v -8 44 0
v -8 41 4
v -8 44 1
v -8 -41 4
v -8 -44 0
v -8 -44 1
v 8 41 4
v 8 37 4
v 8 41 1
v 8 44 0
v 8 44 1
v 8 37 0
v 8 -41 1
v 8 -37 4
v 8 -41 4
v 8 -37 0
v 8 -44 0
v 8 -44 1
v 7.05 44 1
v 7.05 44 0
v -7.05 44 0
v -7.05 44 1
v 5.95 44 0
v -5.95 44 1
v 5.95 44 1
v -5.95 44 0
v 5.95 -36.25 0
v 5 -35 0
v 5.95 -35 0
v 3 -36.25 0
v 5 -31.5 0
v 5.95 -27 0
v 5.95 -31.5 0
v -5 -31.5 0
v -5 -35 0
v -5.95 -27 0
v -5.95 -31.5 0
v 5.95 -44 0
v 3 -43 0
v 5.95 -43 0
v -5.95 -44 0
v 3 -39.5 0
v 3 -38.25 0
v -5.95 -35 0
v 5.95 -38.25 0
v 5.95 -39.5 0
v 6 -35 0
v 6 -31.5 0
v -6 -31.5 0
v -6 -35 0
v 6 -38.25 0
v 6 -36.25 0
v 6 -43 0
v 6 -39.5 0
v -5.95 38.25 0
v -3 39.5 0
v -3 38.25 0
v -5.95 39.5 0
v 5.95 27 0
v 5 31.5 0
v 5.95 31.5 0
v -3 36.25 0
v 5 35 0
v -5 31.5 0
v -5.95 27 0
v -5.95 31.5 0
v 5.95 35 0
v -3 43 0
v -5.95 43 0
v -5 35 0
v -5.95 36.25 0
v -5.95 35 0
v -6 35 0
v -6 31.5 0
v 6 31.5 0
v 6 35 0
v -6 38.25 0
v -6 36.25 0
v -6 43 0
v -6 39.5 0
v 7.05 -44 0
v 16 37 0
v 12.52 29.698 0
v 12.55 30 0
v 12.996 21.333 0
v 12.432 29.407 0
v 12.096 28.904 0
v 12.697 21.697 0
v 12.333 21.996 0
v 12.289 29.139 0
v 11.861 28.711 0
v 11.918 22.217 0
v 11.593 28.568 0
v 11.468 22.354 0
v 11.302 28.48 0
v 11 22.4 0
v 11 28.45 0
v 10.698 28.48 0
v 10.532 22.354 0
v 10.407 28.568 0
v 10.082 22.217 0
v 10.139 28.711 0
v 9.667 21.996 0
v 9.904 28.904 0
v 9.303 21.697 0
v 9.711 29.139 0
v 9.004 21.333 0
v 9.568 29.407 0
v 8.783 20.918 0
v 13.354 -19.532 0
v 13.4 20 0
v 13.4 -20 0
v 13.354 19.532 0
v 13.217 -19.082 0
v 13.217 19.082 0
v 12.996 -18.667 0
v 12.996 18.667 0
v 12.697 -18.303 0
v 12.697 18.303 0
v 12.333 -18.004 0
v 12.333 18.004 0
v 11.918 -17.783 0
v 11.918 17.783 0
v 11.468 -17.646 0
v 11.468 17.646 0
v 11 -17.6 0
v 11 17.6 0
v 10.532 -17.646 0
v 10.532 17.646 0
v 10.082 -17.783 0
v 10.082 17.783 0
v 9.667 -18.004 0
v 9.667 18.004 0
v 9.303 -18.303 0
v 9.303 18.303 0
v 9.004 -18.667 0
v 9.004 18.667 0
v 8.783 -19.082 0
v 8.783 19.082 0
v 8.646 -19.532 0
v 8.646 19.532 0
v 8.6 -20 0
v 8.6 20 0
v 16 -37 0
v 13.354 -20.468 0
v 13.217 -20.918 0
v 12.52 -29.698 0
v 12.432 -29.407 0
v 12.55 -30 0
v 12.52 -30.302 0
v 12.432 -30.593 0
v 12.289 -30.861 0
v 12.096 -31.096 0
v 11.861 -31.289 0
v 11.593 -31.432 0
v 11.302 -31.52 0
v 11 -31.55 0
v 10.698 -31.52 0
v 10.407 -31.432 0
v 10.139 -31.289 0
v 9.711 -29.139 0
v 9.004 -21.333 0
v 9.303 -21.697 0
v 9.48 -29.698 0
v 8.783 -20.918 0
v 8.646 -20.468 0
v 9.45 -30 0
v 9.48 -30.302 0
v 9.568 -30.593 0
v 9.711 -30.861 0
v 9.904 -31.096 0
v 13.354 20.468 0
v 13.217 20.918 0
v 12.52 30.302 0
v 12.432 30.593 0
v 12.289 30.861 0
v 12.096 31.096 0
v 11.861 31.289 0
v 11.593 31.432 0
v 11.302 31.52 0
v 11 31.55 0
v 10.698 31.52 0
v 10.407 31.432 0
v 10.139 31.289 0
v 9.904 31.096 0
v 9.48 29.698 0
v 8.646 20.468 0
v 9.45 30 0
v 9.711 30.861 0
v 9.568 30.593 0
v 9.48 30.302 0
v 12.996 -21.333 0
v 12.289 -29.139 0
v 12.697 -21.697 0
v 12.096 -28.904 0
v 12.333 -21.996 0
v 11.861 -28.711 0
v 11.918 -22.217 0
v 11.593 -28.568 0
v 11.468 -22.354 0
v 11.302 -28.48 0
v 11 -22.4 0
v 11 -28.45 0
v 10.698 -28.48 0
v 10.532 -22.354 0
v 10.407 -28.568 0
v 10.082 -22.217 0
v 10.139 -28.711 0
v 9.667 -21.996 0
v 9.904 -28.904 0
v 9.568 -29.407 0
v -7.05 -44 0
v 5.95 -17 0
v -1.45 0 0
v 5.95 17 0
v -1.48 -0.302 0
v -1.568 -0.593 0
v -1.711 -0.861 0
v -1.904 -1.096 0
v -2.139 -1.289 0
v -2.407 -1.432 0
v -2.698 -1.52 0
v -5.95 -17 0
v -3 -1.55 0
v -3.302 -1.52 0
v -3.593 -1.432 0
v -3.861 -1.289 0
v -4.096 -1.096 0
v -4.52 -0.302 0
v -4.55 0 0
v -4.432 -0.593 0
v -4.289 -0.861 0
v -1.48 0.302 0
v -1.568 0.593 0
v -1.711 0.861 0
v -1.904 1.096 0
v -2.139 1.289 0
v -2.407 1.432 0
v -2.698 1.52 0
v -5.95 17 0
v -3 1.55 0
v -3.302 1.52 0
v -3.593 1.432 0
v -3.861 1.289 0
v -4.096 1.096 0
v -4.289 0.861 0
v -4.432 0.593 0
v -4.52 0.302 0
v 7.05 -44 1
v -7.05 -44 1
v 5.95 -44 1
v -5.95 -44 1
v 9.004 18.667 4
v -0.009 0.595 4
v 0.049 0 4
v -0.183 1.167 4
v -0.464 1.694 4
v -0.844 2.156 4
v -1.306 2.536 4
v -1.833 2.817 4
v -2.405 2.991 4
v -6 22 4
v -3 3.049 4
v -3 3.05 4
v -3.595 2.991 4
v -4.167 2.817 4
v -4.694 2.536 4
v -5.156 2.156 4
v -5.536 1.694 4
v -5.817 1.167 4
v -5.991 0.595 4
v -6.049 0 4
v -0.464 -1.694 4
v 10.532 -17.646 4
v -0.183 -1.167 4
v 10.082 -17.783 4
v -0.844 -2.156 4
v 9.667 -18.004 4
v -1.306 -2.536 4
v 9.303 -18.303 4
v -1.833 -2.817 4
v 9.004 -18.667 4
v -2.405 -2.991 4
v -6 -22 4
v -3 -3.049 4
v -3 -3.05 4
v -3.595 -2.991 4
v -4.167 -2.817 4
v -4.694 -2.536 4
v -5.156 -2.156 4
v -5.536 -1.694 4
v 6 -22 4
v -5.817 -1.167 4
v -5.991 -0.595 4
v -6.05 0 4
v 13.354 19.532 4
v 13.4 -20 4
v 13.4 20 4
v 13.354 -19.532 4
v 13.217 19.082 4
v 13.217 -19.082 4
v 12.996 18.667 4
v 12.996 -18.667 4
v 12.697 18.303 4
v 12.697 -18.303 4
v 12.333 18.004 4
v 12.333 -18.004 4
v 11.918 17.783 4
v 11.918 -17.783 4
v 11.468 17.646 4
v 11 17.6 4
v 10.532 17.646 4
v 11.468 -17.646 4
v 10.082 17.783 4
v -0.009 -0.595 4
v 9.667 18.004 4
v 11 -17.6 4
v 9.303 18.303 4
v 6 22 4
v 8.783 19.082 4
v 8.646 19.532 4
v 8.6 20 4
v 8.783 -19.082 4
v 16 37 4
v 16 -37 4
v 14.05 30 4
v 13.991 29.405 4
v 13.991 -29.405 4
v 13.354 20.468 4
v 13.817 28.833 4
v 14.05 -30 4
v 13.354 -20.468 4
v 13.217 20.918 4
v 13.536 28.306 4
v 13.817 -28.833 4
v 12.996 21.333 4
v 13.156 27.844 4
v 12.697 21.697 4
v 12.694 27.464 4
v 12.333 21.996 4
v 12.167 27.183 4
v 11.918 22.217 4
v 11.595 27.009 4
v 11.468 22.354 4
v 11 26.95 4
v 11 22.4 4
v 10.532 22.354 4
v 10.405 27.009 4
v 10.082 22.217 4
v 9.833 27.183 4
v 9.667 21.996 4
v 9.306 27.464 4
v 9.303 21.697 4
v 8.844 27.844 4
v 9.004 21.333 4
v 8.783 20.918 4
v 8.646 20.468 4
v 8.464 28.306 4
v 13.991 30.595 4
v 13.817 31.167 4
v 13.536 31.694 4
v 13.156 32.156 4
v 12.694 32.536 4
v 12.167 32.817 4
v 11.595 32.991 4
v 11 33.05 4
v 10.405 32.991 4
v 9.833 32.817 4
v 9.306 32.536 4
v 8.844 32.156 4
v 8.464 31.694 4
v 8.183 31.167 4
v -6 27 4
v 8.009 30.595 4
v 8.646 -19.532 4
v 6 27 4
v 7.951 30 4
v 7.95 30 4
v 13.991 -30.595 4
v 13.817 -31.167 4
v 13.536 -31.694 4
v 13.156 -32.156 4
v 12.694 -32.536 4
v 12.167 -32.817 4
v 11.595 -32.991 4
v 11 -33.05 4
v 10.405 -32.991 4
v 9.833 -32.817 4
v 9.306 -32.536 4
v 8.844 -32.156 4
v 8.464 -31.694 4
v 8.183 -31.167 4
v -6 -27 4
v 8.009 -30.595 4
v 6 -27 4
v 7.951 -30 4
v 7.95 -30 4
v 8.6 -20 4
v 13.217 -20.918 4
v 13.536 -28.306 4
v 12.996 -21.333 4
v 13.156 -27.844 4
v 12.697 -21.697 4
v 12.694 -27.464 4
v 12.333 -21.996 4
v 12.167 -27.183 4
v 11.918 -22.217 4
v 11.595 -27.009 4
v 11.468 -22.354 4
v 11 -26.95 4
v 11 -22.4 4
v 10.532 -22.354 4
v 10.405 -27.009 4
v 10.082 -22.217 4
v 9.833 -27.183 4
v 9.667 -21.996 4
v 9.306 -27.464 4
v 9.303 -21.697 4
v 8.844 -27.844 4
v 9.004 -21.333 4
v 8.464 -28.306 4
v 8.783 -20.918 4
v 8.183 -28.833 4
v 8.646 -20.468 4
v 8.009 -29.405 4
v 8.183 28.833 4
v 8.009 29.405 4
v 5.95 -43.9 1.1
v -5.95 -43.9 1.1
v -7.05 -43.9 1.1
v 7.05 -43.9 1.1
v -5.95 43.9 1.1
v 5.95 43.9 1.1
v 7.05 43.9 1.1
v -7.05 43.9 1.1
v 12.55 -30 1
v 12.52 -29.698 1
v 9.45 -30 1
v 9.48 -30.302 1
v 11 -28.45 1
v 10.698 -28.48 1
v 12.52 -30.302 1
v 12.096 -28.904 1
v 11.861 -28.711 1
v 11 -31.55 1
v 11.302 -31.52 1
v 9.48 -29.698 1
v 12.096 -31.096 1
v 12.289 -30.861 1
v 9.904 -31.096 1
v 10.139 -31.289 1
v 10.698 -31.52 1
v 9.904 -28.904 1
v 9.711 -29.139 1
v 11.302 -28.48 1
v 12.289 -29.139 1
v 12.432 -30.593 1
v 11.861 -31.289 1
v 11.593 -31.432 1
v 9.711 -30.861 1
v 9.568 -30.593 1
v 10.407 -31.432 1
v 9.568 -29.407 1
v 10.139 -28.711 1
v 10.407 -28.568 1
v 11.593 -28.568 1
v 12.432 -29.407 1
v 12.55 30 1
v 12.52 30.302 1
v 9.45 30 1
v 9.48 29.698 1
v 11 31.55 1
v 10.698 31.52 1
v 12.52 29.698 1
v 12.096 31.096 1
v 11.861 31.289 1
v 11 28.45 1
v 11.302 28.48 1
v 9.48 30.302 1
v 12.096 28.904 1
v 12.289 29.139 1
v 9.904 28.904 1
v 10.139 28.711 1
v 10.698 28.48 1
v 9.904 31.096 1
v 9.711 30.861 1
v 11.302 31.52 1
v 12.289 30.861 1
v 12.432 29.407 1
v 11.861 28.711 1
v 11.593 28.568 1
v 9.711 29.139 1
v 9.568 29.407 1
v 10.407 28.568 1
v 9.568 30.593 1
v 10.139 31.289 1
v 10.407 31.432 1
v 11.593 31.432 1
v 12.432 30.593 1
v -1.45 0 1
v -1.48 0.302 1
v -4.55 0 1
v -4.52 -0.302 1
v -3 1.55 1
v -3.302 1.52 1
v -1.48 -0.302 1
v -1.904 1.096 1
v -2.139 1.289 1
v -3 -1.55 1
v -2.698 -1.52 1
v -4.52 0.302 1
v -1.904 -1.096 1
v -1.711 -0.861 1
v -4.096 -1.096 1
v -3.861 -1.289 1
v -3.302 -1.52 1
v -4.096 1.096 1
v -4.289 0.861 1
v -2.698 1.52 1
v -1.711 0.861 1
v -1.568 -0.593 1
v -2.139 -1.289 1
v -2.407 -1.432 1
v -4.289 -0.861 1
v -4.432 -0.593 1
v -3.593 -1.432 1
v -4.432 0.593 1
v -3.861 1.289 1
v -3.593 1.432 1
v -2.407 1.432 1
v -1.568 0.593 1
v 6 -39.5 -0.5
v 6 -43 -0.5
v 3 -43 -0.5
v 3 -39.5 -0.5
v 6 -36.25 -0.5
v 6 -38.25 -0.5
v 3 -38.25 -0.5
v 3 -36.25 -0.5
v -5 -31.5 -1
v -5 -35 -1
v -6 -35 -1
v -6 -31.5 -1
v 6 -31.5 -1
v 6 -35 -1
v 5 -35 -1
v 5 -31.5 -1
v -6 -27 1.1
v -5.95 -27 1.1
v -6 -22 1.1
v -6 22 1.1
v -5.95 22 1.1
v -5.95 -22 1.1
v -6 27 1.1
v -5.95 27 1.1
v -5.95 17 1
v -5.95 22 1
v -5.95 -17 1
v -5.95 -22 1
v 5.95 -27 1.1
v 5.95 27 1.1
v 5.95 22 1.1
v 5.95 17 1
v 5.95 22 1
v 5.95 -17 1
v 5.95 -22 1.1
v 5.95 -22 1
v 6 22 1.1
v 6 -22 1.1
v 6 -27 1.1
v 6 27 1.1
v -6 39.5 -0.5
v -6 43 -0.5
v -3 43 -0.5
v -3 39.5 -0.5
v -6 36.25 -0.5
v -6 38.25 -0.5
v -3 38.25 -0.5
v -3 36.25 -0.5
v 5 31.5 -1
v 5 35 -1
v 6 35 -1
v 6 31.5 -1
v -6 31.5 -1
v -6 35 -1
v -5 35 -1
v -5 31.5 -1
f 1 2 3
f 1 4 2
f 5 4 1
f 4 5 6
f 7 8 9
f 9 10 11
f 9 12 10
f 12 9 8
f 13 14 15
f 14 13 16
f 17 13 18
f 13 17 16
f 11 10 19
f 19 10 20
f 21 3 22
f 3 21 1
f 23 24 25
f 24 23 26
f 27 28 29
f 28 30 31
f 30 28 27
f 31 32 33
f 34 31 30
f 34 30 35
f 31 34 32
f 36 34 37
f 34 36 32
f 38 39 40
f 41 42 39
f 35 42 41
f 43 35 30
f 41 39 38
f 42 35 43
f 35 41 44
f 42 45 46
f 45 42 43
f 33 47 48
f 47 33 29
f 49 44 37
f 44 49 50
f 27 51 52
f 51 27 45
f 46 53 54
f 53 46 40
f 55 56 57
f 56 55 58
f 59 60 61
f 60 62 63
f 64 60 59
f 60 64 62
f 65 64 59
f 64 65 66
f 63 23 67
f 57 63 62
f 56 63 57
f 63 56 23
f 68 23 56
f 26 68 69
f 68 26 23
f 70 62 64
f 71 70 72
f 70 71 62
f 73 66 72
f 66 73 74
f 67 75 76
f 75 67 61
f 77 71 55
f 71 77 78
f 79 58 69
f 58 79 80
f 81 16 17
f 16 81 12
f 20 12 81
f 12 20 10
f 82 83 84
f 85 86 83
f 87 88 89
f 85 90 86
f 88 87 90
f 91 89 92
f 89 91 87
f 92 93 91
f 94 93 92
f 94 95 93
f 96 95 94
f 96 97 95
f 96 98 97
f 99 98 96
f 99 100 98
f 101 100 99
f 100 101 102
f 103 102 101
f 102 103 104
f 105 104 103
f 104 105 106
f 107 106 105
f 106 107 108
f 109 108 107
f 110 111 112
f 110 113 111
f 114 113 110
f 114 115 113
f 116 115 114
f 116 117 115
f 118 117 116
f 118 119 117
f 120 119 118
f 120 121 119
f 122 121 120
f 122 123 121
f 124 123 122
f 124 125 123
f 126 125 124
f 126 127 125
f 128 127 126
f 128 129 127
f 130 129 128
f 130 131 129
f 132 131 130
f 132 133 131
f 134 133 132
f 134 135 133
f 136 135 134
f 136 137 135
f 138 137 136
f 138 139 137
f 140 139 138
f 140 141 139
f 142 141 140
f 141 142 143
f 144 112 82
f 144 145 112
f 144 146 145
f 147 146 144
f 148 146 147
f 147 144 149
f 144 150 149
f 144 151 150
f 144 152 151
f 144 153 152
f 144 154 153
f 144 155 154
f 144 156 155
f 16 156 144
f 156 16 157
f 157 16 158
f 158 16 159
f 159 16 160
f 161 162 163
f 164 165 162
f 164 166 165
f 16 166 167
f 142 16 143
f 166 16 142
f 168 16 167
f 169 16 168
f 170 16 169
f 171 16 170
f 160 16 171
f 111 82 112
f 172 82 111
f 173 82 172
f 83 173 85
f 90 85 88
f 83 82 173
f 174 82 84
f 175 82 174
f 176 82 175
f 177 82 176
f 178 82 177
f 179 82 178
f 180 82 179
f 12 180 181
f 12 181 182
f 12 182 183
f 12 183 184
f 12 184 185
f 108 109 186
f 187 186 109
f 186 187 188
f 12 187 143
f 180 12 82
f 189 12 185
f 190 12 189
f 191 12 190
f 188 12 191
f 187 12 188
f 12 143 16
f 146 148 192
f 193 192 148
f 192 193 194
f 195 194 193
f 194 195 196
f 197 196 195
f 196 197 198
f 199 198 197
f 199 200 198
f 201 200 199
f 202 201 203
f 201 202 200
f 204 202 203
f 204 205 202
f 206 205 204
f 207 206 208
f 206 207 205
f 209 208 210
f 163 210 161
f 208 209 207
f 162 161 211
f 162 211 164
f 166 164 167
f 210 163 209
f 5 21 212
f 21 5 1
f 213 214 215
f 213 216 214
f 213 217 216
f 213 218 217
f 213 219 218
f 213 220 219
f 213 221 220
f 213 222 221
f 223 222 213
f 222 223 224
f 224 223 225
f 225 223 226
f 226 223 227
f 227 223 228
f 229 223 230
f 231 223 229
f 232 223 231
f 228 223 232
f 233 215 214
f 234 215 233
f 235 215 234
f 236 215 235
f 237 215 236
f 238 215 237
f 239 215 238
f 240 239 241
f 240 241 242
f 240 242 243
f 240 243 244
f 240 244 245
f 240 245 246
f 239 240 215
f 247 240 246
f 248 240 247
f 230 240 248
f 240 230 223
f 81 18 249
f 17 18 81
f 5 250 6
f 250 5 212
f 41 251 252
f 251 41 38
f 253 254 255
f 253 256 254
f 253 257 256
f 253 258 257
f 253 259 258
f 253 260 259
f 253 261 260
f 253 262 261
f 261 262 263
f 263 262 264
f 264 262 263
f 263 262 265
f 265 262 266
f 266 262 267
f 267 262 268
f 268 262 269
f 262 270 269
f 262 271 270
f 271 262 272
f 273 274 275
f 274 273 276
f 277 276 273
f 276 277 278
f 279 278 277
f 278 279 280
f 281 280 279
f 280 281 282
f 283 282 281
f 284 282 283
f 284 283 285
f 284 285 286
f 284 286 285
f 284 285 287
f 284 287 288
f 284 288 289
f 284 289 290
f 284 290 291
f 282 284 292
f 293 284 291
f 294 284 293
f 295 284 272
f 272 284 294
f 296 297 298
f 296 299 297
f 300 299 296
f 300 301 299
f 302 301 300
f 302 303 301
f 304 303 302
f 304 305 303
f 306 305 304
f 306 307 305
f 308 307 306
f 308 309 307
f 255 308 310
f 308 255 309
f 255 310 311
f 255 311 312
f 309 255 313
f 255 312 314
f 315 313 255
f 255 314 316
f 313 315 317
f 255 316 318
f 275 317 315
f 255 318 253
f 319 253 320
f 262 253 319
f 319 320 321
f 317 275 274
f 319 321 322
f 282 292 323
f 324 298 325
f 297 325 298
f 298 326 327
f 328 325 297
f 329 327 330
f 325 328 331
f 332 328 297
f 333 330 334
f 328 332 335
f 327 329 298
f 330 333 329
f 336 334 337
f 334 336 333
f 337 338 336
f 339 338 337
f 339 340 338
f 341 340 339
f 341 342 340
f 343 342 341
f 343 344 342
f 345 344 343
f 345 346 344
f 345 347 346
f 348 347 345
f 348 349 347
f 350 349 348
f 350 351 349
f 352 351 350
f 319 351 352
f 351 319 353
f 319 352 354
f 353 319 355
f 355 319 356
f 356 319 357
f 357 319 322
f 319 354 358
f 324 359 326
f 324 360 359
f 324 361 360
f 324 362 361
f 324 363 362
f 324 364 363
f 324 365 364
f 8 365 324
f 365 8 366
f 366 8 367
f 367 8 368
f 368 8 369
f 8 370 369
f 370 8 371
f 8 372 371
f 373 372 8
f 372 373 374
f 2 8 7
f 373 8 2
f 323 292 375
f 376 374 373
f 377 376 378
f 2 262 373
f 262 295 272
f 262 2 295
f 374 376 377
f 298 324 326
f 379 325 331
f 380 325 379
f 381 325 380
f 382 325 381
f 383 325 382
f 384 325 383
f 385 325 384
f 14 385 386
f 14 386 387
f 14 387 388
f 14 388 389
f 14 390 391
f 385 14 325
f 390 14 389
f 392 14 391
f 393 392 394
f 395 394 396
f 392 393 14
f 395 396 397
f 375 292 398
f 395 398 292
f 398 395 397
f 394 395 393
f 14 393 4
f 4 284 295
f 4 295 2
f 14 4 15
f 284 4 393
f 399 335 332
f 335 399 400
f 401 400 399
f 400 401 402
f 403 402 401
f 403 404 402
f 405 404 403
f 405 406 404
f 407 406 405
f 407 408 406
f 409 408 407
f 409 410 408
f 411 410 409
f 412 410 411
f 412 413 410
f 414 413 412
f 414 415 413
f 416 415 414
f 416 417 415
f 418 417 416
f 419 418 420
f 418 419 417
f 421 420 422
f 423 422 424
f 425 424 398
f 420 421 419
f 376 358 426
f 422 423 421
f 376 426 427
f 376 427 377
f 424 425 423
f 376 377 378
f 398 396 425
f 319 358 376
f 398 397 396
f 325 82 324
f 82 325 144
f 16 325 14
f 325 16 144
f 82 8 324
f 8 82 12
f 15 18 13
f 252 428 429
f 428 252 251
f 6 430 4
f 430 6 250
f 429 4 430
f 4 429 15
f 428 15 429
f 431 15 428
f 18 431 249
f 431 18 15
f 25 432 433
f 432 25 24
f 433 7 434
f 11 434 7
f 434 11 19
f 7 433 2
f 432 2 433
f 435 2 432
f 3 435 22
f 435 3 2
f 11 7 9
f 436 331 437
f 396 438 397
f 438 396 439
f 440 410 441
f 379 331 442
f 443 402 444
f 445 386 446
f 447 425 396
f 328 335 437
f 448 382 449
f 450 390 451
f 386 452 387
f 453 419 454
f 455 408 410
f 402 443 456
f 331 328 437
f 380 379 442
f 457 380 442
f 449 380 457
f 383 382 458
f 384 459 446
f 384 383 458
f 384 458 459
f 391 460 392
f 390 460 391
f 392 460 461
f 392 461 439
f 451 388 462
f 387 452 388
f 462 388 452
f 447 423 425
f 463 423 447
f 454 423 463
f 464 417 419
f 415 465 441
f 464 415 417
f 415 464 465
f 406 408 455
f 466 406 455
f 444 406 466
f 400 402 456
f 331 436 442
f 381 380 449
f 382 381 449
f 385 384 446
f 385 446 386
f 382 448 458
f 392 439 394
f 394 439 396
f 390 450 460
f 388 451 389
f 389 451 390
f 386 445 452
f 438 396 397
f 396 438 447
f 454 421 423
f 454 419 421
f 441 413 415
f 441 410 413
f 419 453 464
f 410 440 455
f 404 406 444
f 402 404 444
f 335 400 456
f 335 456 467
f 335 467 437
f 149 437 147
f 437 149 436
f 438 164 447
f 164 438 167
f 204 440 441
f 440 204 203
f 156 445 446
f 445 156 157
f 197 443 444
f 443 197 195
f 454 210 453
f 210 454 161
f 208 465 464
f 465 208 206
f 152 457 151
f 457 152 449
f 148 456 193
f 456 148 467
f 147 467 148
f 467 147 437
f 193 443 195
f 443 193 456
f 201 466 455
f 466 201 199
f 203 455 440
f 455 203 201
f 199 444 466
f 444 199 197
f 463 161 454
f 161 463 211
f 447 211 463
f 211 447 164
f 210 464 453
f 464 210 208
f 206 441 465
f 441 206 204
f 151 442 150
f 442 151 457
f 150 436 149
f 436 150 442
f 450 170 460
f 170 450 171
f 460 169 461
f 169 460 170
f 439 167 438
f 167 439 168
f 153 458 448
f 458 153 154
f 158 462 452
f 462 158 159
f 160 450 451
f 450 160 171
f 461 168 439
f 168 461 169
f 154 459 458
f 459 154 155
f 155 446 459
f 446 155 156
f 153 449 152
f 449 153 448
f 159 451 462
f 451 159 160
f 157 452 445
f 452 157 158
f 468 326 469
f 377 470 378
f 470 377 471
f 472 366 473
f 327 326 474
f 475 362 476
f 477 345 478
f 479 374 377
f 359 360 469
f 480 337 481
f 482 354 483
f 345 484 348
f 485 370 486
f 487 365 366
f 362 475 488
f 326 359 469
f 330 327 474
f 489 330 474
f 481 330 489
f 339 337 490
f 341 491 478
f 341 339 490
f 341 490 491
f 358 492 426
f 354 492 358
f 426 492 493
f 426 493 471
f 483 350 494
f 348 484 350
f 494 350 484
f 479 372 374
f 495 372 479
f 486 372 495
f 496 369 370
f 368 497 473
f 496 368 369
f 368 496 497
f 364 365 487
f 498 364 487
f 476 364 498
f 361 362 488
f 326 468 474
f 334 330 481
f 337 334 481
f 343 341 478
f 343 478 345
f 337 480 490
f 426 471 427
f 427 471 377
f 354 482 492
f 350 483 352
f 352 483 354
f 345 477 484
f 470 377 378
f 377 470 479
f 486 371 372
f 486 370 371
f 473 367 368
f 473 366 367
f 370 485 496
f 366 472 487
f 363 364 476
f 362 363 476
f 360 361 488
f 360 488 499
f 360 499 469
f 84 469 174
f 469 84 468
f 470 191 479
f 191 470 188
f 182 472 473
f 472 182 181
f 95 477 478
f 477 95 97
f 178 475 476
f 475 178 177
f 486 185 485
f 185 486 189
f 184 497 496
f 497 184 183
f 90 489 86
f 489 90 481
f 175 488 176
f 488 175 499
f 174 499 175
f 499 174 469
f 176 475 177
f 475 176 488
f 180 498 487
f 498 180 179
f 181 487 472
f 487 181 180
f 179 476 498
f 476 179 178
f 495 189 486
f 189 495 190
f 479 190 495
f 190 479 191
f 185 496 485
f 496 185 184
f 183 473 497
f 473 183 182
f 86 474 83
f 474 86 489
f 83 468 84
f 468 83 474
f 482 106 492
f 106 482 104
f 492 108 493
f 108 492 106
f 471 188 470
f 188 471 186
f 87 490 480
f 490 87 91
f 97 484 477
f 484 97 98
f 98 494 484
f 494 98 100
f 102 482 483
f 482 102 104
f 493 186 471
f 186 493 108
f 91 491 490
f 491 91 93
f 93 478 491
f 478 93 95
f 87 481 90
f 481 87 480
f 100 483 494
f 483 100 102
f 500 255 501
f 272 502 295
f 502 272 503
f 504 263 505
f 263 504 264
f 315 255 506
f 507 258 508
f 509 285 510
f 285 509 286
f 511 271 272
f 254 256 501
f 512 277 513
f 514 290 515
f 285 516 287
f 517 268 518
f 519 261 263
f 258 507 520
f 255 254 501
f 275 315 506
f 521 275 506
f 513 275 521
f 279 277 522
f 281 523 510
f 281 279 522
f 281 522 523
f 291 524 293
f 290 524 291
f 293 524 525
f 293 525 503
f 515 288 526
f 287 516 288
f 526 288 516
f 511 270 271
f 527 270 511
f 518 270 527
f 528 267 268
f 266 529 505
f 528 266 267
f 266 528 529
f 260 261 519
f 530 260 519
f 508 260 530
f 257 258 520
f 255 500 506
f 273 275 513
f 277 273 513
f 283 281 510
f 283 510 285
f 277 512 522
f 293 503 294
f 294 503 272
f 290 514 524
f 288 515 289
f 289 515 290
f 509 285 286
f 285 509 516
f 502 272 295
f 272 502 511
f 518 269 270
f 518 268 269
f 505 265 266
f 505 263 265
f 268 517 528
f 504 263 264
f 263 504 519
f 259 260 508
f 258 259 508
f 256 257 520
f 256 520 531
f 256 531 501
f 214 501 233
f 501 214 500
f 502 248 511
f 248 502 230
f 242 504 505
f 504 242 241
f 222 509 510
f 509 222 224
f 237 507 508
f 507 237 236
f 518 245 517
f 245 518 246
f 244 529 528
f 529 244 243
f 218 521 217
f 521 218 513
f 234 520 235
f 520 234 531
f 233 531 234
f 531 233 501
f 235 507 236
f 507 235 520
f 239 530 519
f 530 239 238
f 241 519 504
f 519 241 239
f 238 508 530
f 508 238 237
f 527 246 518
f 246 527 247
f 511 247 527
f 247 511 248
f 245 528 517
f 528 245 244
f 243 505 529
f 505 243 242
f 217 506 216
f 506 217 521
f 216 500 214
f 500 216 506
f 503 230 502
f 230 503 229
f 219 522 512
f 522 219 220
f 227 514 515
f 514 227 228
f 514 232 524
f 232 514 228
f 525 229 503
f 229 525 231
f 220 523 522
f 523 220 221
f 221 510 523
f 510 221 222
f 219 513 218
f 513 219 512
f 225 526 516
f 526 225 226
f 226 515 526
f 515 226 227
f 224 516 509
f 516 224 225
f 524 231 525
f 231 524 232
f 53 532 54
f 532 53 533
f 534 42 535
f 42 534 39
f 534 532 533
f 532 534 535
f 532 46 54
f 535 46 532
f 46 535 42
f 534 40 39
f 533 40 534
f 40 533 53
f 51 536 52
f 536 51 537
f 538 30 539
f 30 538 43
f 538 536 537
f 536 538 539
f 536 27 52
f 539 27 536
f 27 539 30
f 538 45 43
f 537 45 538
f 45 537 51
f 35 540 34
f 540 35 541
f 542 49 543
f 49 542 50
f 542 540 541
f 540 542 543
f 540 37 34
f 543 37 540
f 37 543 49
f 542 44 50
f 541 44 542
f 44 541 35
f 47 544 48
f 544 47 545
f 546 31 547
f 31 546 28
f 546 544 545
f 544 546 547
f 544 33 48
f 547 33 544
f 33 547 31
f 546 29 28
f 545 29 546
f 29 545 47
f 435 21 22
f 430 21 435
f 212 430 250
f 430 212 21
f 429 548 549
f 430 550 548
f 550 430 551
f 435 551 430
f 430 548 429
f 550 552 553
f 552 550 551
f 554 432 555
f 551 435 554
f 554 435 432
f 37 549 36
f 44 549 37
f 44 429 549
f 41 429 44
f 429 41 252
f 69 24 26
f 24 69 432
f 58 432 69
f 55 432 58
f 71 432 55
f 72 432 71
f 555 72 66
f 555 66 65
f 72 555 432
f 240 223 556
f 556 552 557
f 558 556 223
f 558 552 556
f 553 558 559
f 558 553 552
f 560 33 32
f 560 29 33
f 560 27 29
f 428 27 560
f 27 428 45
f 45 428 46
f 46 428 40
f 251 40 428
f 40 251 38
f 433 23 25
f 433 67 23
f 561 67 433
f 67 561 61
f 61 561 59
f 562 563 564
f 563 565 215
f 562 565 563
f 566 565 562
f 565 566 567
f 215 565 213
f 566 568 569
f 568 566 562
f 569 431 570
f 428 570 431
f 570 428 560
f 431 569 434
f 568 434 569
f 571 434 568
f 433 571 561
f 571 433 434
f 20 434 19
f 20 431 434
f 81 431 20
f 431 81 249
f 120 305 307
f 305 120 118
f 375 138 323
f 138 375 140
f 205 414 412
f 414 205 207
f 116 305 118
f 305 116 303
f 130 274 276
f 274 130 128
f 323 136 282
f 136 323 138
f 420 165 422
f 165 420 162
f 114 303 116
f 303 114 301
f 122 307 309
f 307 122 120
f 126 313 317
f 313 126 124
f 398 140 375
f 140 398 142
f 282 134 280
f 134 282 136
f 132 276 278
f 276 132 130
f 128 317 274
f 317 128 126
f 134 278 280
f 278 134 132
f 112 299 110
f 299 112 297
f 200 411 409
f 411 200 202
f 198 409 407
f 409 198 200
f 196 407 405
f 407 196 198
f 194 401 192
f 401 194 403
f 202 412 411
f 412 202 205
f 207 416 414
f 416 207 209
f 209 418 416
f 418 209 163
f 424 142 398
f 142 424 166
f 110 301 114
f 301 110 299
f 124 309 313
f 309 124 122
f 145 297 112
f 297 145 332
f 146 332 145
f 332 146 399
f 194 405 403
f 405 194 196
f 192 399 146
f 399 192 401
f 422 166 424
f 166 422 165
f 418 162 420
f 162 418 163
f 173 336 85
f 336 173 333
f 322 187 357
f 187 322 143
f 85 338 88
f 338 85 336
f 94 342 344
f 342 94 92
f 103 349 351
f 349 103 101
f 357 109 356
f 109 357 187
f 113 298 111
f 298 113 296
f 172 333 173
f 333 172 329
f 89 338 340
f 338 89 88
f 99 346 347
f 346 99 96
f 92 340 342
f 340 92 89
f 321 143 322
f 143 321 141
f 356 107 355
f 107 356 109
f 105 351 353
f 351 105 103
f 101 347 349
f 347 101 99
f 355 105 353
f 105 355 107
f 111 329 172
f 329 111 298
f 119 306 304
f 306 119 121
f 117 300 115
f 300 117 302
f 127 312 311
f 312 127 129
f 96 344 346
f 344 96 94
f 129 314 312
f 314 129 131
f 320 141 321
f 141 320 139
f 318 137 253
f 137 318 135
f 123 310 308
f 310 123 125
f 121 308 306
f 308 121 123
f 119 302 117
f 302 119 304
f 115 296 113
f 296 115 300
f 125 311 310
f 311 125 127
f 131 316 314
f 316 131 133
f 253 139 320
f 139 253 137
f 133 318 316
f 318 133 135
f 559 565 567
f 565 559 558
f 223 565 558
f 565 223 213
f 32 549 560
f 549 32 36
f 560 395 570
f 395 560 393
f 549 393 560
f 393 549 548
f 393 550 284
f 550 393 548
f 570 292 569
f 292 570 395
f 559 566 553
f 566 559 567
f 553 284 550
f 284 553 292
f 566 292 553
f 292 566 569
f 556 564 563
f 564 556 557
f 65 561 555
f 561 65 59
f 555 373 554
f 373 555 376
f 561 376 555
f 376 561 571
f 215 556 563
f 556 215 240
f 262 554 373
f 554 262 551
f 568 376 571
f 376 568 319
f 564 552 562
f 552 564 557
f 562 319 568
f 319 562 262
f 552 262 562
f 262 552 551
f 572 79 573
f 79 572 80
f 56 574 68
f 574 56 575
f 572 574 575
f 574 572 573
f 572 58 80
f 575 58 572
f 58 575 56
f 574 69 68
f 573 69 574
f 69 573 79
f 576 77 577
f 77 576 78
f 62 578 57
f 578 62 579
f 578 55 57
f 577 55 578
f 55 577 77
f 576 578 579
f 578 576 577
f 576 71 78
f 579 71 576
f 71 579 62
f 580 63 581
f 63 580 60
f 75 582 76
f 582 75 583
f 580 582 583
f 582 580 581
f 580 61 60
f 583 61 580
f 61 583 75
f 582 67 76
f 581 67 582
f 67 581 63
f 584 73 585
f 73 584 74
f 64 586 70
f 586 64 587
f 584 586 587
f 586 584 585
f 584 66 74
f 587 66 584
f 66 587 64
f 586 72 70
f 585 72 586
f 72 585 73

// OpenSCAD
batt_l = 57;
batt_w = 70;
batt_h = 19;

pi_l = 65;
pi_w = 56;
pi_hole_space_l = 58;
pi_hole_space_w = 49;

wheel_dist_l = 48;
m3_insert_d = 4.8;

t = 2;

    top_space = 4;
    h=12;
    w_off = 14.5;

difference() {
union() {
cube_center([16,batt_w+7+7 + 2*t,1]);
cube_center([16,batt_w + 4 + 4 + 2*t,top_space]);

translate([16/2+8/2,0,0])
cube_center([8,batt_w+2*t,top_space]);

translate([0,-batt_w/2-t-4,1])
rotate([0,0,90])
scale([3,16,3])
triangle();

translate([0,batt_w/2+t+4,1])
rotate([0,0,90])
scale([-3,16,3])
triangle();

}

translate([-6.5,0,0])
cube_center([1.1,100,1.1]);

translate([6.5,0,0])
cube_center([1.1,100,1.1]);

translate([11,-30,0]) {
translate([0,0,1])
cylinder(d1=3.1,d2=6.1,h=3.001,$fn=32);
translate([0,0,0])
cylinder(d1=3.1,d2=3.1,h=3,$fn=32);
}

translate([11,30,0]) {
translate([0,0,1])
cylinder(d1=3.1,d2=6.1,h=3.001,$fn=32);
translate([0,0,0])
cylinder(d1=3.1,d2=3.1,h=3,$fn=32);
}

translate([-3,0,0]) {
translate([0,0,1])
cylinder(d1=3.1,d2=6.1,h=3.001,$fn=32);
translate([0,0,0])
cylinder(d1=3.1,d2=3.1,h=3,$fn=32);
}

translate([11,-20,0])
cylinder(d=m3_insert_d,h=5,$fn=32);

translate([11,20,0])
cylinder(d=m3_insert_d,h=5,$fn=32);

translate([0,-22,0])
cube_center([12,10,1]);
translate([0,-24.5,1])
cube_center([12,5,4]);

translate([0,22,0])
cube_center([12,10,1]);
translate([0,24.5,1])
cube_center([12,5,4]);

}


translate([-12/2+3/2,batt_w/2+7+t-3.5/2-1,-.5])
cube_center([3,3.5,0.5]);

translate([-12/2+3/2,batt_w/2+7+t-2/2-5.75,-.5])
cube_center([3,2,0.5]);

translate([12/2-1/2,batt_w/2+7+t-3.5/2-9,-1])
cube_center([1,3.5,1]);

translate([-12/2+1/2,batt_w/2+7+t-3.5/2-9,-1])
cube_center([1,3.5,1]);

rotate([0,0,180]) {
translate([-12/2+3/2,batt_w/2+7+t-3.5/2-1,-.5])
cube_center([3,3.5,0.5]);

translate([-12/2+3/2,batt_w/2+7+t-2/2-5.75,-.5])
cube_center([3,2,0.5]);
    
translate([12/2-1/2,batt_w/2+7+t-3.5/2-9,-1])
cube_center([1,3.5,1]);

translate([-12/2+1/2,batt_w/2+7+t-3.5/2-9,-1])
cube_center([1,3.5,1]);
}

module cube_center(dims) {
    translate([-dims[0]/2, -dims[1]/2, 0])
    cube(dims);
}
 
module triangle() {
rotate([0,-90,90])
linear_extrude(height = 1, center = true, convexity = 10, twist = 0)
polygon(points=[[0,0],[0,1],[1,0]]);
}
